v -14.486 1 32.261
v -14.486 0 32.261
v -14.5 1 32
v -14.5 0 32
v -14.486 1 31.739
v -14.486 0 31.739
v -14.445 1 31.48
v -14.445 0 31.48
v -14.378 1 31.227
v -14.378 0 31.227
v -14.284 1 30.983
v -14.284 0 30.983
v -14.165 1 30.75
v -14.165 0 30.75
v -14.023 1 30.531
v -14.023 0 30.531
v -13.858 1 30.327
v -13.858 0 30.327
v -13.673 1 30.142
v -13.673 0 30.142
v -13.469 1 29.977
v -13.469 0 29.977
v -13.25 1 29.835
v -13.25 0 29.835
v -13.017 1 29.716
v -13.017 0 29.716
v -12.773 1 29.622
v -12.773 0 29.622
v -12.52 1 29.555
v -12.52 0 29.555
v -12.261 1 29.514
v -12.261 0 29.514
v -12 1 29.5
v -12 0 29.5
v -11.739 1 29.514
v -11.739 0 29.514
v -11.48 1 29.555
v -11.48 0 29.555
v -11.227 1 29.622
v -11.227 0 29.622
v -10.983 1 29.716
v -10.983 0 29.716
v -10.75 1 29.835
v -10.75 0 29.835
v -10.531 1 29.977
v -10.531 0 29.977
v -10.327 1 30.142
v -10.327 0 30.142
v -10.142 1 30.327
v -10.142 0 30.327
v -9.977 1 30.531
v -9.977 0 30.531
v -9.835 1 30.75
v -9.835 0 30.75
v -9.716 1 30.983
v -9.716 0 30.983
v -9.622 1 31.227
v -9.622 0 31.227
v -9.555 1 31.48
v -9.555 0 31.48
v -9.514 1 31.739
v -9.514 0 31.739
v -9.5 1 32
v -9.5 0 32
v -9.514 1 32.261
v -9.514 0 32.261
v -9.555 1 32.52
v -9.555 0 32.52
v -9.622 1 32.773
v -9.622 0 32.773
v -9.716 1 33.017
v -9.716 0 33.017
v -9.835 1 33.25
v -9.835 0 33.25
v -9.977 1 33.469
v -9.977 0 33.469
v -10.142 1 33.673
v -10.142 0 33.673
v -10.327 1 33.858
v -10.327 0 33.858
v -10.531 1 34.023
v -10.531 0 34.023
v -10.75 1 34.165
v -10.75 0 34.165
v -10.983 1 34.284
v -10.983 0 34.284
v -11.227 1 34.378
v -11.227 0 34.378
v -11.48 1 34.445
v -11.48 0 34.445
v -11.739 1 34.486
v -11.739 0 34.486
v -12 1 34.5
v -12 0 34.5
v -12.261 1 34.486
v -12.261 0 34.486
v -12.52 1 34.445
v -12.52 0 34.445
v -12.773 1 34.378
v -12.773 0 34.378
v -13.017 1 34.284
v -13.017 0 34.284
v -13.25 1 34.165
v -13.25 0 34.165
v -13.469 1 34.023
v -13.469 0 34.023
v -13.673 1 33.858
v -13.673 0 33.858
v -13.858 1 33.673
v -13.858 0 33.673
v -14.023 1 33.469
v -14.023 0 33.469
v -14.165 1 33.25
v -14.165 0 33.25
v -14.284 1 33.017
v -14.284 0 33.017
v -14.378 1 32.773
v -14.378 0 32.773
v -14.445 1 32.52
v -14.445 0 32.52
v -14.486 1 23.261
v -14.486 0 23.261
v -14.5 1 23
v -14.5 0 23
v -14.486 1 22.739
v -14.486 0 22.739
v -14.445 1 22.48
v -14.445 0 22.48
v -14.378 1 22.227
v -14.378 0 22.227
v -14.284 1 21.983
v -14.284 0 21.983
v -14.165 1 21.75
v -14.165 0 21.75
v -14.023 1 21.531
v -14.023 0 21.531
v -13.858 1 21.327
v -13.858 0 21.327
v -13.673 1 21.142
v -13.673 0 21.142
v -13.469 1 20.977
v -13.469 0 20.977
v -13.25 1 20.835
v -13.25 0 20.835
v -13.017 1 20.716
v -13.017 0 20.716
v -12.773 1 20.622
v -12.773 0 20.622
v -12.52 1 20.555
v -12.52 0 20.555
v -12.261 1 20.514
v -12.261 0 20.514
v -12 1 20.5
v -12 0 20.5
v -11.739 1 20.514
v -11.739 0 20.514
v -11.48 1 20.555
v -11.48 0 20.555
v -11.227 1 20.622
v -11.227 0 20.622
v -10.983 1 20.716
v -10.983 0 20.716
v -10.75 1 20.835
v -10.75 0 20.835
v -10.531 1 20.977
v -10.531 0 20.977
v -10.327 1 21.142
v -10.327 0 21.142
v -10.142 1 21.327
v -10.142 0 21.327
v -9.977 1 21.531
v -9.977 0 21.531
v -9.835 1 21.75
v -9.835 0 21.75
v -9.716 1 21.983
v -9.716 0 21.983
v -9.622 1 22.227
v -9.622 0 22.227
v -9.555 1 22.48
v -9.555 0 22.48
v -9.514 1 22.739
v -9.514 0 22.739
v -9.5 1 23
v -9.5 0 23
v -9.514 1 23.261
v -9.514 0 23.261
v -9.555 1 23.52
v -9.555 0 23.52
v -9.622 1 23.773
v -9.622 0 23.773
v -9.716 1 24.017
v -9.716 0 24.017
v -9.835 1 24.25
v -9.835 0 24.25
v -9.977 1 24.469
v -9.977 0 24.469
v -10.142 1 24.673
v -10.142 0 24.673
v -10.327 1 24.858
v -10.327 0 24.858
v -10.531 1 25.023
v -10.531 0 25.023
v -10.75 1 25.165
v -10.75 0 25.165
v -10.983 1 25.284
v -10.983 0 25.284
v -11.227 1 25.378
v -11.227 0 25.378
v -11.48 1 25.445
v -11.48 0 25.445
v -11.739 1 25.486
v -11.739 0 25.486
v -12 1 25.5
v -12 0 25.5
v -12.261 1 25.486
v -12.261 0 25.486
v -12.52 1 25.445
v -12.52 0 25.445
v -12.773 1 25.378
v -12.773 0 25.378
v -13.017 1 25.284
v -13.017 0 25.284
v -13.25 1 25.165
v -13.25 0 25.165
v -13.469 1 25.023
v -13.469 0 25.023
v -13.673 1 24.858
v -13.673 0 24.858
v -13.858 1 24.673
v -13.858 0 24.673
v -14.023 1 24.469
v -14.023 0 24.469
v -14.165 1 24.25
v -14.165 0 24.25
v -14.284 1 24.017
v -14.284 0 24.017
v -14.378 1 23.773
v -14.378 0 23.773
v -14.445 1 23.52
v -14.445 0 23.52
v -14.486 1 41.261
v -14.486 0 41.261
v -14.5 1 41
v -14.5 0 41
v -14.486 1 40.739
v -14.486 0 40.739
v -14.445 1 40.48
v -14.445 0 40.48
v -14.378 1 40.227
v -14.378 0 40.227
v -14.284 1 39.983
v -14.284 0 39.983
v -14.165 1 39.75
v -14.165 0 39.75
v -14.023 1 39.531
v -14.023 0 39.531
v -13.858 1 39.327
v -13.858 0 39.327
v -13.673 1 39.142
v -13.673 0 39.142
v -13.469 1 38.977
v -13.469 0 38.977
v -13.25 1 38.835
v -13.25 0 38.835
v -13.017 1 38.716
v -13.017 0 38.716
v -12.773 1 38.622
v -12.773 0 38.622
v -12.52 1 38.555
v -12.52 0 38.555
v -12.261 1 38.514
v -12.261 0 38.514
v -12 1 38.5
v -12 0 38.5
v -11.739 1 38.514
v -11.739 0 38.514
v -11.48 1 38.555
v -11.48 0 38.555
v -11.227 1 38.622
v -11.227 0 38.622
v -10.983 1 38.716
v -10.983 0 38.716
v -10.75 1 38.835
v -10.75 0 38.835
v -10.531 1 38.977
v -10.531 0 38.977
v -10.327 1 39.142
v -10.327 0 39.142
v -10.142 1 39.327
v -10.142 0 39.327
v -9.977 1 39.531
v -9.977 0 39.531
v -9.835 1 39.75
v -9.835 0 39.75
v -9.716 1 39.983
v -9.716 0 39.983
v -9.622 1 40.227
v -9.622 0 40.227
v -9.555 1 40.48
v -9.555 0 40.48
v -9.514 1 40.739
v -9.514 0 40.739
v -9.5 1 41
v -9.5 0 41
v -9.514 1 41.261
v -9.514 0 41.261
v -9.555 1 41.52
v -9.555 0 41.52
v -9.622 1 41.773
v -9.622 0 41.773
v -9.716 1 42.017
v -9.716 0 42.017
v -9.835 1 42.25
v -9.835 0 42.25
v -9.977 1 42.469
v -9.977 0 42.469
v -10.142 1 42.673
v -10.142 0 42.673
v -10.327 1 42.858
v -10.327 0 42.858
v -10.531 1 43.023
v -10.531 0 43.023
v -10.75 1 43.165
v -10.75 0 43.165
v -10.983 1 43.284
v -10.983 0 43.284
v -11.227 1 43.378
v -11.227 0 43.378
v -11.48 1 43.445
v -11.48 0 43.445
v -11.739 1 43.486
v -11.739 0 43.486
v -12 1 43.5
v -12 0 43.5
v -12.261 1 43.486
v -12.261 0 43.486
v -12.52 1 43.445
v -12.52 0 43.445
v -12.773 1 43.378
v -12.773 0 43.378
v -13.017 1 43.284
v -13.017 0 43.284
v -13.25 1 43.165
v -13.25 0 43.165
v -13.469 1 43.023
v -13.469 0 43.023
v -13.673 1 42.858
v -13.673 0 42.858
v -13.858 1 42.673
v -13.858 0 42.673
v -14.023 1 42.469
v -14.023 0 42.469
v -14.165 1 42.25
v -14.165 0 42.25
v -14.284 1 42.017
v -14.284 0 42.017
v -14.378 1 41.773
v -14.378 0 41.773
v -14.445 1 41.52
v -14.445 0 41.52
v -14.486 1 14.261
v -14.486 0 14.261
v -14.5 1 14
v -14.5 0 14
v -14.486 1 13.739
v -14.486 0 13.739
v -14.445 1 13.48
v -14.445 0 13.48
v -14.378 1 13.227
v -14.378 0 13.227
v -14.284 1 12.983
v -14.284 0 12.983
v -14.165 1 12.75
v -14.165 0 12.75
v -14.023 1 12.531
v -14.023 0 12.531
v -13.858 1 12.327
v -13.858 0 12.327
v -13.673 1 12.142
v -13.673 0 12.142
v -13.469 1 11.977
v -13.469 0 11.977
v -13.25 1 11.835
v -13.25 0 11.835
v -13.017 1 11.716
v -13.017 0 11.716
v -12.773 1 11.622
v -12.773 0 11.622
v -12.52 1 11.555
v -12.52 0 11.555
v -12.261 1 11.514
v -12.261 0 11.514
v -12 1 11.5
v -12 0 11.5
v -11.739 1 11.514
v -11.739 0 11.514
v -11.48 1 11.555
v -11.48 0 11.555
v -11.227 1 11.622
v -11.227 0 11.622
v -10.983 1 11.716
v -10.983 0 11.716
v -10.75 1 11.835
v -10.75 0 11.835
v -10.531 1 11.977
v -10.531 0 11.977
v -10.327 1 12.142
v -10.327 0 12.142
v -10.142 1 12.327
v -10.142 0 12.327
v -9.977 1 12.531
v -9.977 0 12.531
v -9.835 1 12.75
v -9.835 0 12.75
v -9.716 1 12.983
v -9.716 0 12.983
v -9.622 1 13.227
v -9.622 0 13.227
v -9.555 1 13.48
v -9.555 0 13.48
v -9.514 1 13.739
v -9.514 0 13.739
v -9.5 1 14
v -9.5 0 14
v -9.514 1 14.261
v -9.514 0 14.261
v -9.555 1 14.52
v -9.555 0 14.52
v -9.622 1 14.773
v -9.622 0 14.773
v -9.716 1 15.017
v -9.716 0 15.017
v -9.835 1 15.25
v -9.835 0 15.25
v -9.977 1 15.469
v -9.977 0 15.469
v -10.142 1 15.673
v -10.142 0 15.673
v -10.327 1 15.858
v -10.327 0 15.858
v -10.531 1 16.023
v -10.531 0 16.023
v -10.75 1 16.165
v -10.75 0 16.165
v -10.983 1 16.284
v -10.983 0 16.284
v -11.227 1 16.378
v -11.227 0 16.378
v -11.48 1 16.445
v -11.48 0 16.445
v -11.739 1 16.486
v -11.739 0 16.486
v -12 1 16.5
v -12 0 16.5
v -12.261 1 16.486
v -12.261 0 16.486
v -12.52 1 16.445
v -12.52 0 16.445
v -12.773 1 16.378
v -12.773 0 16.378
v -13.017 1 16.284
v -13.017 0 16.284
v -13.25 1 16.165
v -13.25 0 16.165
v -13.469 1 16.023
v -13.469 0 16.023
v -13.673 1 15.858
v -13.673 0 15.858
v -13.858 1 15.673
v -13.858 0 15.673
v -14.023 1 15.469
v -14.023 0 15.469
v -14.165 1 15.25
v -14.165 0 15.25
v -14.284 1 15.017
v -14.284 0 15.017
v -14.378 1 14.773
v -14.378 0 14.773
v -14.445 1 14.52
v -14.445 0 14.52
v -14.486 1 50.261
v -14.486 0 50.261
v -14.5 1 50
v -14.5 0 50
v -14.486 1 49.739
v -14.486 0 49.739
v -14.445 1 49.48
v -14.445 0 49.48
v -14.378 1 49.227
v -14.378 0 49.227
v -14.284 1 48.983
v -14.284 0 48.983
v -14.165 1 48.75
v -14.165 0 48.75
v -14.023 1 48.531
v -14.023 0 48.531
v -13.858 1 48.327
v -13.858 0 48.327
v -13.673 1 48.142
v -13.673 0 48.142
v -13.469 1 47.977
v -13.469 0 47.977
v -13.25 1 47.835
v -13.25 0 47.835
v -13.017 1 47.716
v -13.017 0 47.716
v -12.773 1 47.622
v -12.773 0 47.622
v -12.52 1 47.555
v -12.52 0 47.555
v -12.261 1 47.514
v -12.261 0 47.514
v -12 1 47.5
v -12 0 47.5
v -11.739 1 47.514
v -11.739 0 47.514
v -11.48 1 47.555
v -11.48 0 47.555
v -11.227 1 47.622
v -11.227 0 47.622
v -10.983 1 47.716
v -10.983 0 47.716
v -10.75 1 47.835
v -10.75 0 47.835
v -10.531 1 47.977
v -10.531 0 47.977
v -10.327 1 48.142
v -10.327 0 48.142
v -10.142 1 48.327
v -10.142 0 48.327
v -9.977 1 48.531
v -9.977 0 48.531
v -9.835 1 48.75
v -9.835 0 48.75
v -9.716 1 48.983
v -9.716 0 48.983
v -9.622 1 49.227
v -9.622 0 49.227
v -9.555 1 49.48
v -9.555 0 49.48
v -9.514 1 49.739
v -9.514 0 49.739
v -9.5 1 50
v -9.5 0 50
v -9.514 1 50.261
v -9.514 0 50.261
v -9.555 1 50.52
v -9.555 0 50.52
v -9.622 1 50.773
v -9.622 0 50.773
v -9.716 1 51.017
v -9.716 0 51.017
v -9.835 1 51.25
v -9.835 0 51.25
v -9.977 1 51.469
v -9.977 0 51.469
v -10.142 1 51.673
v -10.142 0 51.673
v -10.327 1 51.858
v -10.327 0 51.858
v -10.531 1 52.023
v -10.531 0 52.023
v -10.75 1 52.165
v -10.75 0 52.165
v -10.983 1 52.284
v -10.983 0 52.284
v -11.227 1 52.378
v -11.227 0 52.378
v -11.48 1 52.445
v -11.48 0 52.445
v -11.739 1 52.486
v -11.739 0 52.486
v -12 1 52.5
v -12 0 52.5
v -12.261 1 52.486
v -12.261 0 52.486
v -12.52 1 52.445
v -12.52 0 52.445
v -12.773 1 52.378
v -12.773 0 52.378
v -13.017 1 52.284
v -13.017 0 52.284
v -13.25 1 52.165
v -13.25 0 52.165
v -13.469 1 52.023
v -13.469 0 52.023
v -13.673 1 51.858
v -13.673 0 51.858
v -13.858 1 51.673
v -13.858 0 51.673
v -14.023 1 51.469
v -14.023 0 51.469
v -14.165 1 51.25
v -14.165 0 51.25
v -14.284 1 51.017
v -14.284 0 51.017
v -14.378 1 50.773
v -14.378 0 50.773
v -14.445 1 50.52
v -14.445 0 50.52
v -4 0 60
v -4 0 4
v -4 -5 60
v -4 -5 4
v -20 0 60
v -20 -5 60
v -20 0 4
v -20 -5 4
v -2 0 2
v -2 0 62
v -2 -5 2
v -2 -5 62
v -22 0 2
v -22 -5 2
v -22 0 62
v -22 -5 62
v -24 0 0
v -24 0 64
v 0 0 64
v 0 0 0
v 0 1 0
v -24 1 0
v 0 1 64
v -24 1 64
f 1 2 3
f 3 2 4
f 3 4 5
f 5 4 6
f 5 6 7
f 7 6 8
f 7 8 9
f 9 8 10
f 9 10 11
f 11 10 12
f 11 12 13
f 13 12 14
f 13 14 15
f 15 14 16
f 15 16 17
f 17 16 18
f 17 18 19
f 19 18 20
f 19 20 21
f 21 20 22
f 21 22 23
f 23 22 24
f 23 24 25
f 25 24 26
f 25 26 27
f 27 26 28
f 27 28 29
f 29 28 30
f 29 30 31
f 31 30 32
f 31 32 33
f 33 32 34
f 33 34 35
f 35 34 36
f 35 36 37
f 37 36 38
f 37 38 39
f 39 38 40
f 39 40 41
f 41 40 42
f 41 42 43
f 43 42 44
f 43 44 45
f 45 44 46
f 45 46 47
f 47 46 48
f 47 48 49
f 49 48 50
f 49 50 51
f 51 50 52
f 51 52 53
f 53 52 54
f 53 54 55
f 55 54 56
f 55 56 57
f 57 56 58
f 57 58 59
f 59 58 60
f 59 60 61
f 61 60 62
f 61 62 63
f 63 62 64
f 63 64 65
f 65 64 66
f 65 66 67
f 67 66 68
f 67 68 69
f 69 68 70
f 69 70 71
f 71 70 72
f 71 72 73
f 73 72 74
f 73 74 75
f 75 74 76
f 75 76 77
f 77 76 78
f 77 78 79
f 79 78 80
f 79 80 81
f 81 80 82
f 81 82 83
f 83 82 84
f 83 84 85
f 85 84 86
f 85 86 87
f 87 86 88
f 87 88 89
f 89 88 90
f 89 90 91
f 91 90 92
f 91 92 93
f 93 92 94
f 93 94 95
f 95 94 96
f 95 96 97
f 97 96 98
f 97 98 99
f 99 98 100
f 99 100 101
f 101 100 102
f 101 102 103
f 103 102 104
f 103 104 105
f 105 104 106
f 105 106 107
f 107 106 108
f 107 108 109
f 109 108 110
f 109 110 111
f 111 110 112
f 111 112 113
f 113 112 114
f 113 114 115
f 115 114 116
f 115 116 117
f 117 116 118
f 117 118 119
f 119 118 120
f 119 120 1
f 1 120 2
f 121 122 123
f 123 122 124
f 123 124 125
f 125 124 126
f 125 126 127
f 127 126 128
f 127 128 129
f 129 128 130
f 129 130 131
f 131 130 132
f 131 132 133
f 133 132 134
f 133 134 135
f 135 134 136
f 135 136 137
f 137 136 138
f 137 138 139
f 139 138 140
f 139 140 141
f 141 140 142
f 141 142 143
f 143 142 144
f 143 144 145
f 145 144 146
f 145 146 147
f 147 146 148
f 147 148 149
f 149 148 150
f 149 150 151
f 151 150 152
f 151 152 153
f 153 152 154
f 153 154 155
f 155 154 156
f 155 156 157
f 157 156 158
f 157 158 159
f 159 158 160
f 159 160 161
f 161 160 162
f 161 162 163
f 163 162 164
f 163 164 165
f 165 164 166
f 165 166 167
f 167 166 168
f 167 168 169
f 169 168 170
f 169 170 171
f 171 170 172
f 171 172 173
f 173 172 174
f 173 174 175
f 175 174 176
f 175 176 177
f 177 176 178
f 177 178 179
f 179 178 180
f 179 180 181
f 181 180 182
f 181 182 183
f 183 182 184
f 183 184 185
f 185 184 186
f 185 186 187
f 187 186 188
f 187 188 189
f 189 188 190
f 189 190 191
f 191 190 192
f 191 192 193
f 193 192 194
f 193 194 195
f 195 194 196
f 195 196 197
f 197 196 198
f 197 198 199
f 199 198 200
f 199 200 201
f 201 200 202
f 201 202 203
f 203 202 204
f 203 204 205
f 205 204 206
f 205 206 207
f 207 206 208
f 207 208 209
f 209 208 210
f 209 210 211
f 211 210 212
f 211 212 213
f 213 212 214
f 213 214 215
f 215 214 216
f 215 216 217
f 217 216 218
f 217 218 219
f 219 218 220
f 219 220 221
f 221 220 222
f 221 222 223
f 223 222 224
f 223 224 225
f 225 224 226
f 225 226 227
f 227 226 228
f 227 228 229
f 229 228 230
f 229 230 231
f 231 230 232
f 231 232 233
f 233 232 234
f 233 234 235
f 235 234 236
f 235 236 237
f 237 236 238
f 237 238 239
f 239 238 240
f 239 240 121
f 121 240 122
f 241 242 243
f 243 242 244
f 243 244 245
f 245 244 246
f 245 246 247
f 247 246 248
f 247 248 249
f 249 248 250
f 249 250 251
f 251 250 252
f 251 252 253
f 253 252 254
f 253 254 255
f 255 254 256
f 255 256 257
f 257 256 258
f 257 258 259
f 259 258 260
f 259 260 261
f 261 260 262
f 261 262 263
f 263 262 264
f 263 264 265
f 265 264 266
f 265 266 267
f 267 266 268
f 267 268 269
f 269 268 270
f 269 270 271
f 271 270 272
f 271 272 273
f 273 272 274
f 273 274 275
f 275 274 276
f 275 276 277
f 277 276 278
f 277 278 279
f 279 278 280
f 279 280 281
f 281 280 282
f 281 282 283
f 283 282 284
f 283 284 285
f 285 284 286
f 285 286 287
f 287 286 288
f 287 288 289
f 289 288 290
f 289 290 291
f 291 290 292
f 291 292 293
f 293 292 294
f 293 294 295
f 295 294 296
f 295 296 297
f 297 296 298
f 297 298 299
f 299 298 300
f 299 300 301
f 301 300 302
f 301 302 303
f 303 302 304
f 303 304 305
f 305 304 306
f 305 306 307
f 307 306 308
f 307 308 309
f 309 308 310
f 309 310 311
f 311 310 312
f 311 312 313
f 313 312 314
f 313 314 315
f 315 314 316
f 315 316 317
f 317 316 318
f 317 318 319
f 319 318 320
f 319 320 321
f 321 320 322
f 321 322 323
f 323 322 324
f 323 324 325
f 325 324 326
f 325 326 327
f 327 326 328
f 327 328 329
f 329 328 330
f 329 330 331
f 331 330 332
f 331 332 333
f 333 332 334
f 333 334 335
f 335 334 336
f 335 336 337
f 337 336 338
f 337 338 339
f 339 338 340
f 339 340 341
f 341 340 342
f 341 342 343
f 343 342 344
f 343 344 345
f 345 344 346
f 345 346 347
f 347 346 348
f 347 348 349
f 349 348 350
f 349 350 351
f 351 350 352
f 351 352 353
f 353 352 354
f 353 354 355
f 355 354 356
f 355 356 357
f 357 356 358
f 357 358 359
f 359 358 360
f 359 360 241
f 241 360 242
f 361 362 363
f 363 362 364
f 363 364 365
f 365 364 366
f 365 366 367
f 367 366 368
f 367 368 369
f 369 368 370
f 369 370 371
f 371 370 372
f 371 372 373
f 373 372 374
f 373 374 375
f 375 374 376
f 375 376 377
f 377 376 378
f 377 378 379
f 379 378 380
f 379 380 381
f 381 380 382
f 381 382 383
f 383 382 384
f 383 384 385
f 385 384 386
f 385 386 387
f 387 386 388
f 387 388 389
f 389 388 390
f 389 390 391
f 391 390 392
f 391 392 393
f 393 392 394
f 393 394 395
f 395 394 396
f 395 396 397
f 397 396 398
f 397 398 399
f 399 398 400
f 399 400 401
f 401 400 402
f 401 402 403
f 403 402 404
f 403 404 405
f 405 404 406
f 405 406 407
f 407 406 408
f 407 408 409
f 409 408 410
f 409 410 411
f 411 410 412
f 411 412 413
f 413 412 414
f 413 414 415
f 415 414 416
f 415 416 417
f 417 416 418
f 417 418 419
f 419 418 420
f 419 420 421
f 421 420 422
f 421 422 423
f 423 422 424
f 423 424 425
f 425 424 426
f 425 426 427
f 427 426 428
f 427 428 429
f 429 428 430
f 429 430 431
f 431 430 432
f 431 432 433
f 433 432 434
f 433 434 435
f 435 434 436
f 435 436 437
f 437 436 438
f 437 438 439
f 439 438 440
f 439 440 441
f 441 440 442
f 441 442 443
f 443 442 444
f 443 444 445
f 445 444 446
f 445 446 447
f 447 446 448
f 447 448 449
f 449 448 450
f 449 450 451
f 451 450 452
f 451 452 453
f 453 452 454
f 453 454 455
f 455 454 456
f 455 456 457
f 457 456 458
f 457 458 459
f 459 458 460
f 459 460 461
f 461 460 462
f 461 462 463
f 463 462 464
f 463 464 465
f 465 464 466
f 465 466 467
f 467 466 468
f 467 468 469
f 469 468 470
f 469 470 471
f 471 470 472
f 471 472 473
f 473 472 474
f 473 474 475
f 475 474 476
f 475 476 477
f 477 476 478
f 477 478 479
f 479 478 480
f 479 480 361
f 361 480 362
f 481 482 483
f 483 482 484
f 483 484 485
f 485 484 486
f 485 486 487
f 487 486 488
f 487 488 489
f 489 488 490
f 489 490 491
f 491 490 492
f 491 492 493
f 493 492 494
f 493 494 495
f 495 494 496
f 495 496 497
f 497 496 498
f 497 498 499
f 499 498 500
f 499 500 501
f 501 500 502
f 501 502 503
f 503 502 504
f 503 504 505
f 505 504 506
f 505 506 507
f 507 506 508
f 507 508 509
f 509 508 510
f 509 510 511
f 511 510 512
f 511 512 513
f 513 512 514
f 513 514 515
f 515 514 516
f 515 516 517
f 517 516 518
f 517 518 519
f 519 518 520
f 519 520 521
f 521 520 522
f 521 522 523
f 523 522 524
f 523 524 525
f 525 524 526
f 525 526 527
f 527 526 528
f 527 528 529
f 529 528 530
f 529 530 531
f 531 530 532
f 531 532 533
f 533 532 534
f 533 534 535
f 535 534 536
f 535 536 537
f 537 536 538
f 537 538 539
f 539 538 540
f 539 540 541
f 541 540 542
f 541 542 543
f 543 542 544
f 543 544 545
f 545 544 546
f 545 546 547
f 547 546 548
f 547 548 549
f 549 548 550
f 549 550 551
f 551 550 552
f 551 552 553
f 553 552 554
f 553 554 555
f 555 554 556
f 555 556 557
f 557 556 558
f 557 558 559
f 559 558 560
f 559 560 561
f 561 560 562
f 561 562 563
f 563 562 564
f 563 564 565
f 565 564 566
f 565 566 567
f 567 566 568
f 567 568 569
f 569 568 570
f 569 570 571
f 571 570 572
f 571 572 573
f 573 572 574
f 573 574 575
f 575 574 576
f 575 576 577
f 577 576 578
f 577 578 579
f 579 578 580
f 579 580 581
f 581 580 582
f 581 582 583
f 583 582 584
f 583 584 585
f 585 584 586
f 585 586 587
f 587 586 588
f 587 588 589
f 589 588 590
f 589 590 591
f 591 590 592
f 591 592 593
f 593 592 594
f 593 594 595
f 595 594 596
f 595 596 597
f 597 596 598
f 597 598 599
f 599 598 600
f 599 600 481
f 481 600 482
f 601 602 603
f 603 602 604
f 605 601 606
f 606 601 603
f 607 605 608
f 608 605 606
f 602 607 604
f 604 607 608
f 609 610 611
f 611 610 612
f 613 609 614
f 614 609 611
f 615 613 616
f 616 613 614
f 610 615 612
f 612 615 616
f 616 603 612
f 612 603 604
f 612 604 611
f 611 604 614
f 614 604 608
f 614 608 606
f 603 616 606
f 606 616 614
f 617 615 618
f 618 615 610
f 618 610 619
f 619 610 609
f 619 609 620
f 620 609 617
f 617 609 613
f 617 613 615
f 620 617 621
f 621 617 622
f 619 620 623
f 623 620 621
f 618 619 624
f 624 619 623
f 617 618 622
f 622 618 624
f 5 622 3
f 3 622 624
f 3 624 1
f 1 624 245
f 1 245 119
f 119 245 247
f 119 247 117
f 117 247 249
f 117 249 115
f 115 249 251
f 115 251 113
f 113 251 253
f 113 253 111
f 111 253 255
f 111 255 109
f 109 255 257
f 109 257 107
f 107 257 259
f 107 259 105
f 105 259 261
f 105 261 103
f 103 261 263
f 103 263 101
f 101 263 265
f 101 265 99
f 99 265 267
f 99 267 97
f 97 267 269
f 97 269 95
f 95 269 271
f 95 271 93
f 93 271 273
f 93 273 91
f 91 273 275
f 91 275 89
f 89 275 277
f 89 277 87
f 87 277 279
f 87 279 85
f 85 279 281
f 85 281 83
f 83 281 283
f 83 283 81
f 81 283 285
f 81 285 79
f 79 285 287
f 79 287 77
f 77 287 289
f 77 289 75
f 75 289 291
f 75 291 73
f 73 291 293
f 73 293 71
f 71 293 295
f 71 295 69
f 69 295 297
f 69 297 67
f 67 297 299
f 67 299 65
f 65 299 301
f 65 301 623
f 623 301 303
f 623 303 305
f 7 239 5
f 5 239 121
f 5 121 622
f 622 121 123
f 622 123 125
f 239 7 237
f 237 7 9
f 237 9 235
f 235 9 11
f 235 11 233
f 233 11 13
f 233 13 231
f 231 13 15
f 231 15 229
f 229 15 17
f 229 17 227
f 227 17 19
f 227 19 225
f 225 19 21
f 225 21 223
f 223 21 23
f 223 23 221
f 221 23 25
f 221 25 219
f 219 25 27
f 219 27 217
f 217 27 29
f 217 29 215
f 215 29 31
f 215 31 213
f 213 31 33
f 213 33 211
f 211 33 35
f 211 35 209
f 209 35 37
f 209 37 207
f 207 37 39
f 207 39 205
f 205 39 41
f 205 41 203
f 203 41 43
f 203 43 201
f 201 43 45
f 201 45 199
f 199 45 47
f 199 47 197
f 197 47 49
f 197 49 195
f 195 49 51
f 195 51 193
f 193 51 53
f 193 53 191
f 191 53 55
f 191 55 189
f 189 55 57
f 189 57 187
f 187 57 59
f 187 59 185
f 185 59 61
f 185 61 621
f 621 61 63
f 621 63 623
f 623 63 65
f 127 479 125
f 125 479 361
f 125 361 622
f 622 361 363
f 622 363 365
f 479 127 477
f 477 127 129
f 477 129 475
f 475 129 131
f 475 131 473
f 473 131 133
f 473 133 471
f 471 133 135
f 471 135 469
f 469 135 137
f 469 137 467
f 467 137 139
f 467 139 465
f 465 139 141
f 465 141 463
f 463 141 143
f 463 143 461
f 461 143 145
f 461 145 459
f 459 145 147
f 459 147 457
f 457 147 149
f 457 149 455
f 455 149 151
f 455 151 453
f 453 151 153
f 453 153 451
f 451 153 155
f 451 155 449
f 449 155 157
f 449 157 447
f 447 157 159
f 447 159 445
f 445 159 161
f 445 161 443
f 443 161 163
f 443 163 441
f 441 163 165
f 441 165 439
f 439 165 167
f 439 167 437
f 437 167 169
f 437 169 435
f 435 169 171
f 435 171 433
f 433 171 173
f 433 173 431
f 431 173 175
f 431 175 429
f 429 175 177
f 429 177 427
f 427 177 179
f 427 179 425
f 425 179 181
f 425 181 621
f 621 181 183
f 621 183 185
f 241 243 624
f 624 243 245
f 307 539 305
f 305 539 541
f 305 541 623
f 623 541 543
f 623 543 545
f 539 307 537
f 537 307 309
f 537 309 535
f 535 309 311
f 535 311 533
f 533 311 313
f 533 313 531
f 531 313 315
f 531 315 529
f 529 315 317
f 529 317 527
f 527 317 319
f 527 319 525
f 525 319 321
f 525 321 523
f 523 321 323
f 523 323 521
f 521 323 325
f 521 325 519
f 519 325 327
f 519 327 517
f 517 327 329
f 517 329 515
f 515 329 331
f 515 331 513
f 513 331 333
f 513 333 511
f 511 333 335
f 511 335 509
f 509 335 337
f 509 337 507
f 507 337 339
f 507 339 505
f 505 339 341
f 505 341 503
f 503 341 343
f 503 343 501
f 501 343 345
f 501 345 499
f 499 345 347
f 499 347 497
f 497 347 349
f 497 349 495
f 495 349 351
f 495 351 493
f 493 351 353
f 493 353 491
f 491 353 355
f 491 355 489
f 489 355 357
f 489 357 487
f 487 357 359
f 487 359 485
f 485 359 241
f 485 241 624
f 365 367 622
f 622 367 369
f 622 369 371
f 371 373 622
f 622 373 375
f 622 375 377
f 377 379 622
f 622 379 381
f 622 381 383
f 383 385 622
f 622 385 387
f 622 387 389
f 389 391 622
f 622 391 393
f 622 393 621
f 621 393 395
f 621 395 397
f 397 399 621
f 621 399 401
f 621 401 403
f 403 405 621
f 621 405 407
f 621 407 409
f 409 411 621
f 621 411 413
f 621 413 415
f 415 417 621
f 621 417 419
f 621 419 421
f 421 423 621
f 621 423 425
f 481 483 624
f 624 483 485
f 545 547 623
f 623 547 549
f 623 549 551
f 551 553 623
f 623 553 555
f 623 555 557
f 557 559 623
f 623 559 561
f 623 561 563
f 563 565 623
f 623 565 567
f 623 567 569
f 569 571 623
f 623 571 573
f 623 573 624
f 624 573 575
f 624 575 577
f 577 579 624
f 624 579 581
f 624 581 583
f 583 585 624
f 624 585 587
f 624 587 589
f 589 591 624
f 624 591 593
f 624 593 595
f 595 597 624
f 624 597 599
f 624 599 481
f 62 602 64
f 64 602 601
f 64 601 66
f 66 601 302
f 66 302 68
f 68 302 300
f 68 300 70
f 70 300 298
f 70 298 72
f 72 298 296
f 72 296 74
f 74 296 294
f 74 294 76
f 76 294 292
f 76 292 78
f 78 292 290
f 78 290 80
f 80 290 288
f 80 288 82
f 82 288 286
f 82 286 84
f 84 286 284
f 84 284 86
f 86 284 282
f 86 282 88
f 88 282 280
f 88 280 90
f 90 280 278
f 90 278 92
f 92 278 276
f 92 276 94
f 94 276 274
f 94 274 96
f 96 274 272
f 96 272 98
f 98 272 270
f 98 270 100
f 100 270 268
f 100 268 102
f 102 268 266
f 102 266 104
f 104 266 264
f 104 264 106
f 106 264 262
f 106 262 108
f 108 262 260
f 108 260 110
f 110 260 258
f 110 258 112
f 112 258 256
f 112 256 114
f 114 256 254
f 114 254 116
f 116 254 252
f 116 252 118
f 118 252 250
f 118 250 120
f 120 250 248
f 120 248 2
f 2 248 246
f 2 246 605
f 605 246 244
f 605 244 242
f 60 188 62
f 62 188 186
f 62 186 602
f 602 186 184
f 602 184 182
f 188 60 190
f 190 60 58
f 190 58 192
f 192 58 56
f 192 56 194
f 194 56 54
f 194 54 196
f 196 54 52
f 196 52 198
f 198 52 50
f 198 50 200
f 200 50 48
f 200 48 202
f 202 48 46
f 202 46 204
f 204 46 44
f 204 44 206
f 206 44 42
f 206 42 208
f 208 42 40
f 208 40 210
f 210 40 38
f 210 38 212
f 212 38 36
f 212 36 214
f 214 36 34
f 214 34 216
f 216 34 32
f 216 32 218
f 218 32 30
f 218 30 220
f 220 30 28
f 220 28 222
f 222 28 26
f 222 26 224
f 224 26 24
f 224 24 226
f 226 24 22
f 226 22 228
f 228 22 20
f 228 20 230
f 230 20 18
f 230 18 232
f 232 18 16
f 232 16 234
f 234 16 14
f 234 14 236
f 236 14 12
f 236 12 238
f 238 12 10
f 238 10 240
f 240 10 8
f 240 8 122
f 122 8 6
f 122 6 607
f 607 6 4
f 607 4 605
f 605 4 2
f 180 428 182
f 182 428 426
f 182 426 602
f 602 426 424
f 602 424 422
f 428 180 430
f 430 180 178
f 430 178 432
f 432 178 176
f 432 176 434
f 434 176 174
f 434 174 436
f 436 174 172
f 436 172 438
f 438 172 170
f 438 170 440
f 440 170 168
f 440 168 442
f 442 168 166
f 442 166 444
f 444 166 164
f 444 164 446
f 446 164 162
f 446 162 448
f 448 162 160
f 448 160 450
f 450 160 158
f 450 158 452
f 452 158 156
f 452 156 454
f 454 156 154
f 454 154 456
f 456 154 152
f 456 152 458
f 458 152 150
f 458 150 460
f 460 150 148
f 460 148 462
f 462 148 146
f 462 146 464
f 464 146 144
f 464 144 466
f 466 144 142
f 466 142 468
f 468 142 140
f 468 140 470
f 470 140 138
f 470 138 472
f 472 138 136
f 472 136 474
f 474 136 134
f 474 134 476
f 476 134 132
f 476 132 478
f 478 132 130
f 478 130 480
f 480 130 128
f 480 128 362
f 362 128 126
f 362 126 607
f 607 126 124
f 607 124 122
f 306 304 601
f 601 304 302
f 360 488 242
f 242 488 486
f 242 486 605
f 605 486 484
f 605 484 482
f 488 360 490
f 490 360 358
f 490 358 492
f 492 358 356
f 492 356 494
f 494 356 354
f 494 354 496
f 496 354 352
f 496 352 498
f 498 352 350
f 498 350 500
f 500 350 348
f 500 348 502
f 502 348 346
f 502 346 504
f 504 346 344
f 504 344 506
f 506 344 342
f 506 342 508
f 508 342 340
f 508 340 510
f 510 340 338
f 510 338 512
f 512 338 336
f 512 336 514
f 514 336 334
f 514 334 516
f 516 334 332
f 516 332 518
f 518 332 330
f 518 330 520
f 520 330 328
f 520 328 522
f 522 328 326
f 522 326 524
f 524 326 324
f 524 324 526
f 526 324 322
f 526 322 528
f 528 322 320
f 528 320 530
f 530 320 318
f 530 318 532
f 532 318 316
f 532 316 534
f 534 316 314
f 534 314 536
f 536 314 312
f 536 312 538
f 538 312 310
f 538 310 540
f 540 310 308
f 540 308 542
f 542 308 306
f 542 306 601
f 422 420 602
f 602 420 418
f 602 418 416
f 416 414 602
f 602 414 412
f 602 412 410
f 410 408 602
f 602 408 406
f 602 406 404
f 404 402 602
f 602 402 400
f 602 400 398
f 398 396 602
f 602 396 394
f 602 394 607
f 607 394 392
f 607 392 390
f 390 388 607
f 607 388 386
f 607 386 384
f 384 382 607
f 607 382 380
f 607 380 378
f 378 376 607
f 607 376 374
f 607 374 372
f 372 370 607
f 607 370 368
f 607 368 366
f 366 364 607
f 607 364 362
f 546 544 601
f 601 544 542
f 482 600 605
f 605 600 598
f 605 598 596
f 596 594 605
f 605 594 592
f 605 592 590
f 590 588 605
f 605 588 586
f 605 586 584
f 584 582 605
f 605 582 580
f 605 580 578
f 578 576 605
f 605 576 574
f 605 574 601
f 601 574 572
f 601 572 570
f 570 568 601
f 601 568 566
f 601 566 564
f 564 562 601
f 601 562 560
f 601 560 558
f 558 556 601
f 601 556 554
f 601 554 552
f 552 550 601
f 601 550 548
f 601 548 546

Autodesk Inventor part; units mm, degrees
ref_plane "YZ Plane" through (0, 0, 0) normal (1, 0, 0) x (0, 1, 0)
ref_plane "XZ Plane" through (0, 0, 0) normal (0, 1, 0) x (-1, 0, 0)
ref_plane "XY Plane" through (0, 0, 0) normal (0, 0, 1) x (1, 0, 0)
sketch "Sketch1" plane through (0, 0, 0) normal (0, 1, 0) x (-1, 0, 0)
  line L0 (0, 0) -> (24, 0)
  line L1 (24, 0) -> (24, 64)
  line L2 (24, 64) -> (0, 64)
  line L3 (0, 64) -> (0, 0)
  dimension "d0" = 24
  dimension "d1" = 64
extrude "Extrusion1" add sketch "Sketch1" along normal blind 1
sketch "Sketch2" plane through (0, 0, 0) normal (0, -1, 0) x (1, 0, 0)
  line L0 (-24, 0) -> (-24, 64) projected
  line L1 (0, 0) -> (-24, 0) projected
  line L2 (0, 64) -> (0, 0) projected
  line L3 (-24, 64) -> (0, 64) projected
  line L4 (-2, 2) -> (-22, 2)
  line L5 (-22, 2) -> (-22, 62)
  line L6 (-22, 62) -> (-2, 62)
  line L7 (-2, 62) -> (-2, 2)
  line L8 (-4, 4) -> (-20, 4)
  line L9 (-20, 4) -> (-20, 60)
  line L10 (-20, 60) -> (-4, 60)
  line L11 (-4, 60) -> (-4, 4)
  dimension "d4" = 2
  dimension "d5" = 2
extrude "Extrusion2" add sketch "Sketch2" along normal blind 5 contours L4 L5 L6 L7
sketch "Sketch3" plane through (0, 0, 0) normal (0, -1, 0) x (1, 0, 0)
  line L0 (-4, 4) -> (-4, 60) projected
  line L1 (-4, 60) -> (-20, 60) projected
  line L2 (-20, 60) -> (-20, 4) projected
  line L3 (-20, 4) -> (-4, 4) projected
  line L4 (-4, 4) -> (-20, 4) construction
  line L5 (-12, 4) -> (-12, 60) construction
  line L6 (-4, 60) -> (-20, 60) construction
  line L7 (-12, 4) -> (-12, 5) construction
  line L8 (-12, 60) -> (-12, 59) construction
  line L9 (-12, 59) -> (-12, 50) construction
  line L10 (-12, 50) -> (-12, 41) construction
  line L11 (-12, 41) -> (-12, 32) construction
  line L12 (-12, 32) -> (-12, 23) construction
  line L13 (-12, 23) -> (-12, 14) construction
  circle A0 centre (-12, 50) radius 2.5
  circle A1 centre (-12, 41) radius 2.5
  circle A2 centre (-12, 32) radius 2.5
  circle A3 centre (-12, 23) radius 2.5
  circle A4 centre (-12, 14) radius 2.5
  point P0 (0, 0)
  dimension "d8" = 1
  dimension "d9" = 1
  dimension "d10" = 9
  dimension "d11" = 9
  dimension "d12" = 9
  dimension "d13" = 9
  dimension "d14" = 9
  dimension "d15" = 5
  dimension "d16" = 5
  dimension "d17" = 5
  dimension "d18" = 5
  dimension "d19" = 5
extrude "Extrusion3" cut sketch "Sketch3" against normal blind 2 contours A0 | A1 | A2 | A3 | A4
properties part number "Parte 2.2 final"
